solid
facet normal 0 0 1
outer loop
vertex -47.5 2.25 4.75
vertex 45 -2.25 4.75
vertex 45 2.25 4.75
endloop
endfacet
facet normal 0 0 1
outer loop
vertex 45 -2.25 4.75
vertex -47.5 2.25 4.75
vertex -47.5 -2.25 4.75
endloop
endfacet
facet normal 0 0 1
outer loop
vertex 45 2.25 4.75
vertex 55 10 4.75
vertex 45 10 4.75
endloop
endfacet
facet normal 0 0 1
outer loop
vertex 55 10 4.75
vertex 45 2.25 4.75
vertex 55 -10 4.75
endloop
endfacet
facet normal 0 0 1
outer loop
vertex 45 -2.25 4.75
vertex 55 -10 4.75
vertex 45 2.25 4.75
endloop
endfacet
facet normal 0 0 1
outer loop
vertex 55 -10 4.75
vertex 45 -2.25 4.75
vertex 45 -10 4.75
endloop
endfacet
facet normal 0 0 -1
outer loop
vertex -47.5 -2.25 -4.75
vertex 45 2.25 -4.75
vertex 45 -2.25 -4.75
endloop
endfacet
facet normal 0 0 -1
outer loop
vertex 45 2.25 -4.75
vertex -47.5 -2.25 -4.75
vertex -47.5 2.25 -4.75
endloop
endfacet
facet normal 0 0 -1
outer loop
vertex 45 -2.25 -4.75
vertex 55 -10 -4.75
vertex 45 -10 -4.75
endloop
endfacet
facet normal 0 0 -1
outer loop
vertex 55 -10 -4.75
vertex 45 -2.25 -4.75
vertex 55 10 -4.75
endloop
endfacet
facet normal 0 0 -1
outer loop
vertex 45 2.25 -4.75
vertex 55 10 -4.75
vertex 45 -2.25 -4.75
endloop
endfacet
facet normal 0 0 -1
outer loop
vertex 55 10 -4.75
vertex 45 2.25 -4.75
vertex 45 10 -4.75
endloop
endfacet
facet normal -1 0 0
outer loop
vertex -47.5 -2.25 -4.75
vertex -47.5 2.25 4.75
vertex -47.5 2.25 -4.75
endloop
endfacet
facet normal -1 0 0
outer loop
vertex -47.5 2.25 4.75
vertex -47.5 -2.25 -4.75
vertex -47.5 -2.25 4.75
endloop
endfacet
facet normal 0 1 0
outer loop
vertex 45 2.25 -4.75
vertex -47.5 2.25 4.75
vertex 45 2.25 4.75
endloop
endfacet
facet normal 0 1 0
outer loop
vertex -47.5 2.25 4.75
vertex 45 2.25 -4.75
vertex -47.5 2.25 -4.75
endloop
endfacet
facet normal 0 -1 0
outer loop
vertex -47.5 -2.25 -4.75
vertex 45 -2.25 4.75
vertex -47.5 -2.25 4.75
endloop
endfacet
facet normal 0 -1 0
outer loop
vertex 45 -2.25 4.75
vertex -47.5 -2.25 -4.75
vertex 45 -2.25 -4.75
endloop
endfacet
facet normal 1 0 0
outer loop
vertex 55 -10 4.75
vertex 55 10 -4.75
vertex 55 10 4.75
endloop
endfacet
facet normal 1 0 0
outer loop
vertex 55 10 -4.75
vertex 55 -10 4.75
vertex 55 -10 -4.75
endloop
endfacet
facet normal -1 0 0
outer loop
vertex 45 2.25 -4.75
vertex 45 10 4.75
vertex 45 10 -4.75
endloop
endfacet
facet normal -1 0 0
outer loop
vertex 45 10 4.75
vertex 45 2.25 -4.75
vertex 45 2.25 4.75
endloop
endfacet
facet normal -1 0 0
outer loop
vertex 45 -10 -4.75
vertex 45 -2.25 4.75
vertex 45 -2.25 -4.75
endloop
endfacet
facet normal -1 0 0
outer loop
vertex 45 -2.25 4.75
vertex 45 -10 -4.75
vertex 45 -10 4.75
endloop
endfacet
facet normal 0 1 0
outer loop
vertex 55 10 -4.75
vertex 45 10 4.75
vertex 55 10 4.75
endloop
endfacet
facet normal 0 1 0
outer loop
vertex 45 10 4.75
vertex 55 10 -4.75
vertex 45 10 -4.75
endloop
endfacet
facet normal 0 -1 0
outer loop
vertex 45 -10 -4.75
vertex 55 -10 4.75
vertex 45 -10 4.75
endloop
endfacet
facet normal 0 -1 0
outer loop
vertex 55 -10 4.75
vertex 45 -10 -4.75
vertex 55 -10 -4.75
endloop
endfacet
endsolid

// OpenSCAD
translate([0, 0, 0]) {
    cube([95, 4.5, 9.5], true);
}
translate([50, 0, 0]) {
    cube([10, 20, 9.5], true);
}
